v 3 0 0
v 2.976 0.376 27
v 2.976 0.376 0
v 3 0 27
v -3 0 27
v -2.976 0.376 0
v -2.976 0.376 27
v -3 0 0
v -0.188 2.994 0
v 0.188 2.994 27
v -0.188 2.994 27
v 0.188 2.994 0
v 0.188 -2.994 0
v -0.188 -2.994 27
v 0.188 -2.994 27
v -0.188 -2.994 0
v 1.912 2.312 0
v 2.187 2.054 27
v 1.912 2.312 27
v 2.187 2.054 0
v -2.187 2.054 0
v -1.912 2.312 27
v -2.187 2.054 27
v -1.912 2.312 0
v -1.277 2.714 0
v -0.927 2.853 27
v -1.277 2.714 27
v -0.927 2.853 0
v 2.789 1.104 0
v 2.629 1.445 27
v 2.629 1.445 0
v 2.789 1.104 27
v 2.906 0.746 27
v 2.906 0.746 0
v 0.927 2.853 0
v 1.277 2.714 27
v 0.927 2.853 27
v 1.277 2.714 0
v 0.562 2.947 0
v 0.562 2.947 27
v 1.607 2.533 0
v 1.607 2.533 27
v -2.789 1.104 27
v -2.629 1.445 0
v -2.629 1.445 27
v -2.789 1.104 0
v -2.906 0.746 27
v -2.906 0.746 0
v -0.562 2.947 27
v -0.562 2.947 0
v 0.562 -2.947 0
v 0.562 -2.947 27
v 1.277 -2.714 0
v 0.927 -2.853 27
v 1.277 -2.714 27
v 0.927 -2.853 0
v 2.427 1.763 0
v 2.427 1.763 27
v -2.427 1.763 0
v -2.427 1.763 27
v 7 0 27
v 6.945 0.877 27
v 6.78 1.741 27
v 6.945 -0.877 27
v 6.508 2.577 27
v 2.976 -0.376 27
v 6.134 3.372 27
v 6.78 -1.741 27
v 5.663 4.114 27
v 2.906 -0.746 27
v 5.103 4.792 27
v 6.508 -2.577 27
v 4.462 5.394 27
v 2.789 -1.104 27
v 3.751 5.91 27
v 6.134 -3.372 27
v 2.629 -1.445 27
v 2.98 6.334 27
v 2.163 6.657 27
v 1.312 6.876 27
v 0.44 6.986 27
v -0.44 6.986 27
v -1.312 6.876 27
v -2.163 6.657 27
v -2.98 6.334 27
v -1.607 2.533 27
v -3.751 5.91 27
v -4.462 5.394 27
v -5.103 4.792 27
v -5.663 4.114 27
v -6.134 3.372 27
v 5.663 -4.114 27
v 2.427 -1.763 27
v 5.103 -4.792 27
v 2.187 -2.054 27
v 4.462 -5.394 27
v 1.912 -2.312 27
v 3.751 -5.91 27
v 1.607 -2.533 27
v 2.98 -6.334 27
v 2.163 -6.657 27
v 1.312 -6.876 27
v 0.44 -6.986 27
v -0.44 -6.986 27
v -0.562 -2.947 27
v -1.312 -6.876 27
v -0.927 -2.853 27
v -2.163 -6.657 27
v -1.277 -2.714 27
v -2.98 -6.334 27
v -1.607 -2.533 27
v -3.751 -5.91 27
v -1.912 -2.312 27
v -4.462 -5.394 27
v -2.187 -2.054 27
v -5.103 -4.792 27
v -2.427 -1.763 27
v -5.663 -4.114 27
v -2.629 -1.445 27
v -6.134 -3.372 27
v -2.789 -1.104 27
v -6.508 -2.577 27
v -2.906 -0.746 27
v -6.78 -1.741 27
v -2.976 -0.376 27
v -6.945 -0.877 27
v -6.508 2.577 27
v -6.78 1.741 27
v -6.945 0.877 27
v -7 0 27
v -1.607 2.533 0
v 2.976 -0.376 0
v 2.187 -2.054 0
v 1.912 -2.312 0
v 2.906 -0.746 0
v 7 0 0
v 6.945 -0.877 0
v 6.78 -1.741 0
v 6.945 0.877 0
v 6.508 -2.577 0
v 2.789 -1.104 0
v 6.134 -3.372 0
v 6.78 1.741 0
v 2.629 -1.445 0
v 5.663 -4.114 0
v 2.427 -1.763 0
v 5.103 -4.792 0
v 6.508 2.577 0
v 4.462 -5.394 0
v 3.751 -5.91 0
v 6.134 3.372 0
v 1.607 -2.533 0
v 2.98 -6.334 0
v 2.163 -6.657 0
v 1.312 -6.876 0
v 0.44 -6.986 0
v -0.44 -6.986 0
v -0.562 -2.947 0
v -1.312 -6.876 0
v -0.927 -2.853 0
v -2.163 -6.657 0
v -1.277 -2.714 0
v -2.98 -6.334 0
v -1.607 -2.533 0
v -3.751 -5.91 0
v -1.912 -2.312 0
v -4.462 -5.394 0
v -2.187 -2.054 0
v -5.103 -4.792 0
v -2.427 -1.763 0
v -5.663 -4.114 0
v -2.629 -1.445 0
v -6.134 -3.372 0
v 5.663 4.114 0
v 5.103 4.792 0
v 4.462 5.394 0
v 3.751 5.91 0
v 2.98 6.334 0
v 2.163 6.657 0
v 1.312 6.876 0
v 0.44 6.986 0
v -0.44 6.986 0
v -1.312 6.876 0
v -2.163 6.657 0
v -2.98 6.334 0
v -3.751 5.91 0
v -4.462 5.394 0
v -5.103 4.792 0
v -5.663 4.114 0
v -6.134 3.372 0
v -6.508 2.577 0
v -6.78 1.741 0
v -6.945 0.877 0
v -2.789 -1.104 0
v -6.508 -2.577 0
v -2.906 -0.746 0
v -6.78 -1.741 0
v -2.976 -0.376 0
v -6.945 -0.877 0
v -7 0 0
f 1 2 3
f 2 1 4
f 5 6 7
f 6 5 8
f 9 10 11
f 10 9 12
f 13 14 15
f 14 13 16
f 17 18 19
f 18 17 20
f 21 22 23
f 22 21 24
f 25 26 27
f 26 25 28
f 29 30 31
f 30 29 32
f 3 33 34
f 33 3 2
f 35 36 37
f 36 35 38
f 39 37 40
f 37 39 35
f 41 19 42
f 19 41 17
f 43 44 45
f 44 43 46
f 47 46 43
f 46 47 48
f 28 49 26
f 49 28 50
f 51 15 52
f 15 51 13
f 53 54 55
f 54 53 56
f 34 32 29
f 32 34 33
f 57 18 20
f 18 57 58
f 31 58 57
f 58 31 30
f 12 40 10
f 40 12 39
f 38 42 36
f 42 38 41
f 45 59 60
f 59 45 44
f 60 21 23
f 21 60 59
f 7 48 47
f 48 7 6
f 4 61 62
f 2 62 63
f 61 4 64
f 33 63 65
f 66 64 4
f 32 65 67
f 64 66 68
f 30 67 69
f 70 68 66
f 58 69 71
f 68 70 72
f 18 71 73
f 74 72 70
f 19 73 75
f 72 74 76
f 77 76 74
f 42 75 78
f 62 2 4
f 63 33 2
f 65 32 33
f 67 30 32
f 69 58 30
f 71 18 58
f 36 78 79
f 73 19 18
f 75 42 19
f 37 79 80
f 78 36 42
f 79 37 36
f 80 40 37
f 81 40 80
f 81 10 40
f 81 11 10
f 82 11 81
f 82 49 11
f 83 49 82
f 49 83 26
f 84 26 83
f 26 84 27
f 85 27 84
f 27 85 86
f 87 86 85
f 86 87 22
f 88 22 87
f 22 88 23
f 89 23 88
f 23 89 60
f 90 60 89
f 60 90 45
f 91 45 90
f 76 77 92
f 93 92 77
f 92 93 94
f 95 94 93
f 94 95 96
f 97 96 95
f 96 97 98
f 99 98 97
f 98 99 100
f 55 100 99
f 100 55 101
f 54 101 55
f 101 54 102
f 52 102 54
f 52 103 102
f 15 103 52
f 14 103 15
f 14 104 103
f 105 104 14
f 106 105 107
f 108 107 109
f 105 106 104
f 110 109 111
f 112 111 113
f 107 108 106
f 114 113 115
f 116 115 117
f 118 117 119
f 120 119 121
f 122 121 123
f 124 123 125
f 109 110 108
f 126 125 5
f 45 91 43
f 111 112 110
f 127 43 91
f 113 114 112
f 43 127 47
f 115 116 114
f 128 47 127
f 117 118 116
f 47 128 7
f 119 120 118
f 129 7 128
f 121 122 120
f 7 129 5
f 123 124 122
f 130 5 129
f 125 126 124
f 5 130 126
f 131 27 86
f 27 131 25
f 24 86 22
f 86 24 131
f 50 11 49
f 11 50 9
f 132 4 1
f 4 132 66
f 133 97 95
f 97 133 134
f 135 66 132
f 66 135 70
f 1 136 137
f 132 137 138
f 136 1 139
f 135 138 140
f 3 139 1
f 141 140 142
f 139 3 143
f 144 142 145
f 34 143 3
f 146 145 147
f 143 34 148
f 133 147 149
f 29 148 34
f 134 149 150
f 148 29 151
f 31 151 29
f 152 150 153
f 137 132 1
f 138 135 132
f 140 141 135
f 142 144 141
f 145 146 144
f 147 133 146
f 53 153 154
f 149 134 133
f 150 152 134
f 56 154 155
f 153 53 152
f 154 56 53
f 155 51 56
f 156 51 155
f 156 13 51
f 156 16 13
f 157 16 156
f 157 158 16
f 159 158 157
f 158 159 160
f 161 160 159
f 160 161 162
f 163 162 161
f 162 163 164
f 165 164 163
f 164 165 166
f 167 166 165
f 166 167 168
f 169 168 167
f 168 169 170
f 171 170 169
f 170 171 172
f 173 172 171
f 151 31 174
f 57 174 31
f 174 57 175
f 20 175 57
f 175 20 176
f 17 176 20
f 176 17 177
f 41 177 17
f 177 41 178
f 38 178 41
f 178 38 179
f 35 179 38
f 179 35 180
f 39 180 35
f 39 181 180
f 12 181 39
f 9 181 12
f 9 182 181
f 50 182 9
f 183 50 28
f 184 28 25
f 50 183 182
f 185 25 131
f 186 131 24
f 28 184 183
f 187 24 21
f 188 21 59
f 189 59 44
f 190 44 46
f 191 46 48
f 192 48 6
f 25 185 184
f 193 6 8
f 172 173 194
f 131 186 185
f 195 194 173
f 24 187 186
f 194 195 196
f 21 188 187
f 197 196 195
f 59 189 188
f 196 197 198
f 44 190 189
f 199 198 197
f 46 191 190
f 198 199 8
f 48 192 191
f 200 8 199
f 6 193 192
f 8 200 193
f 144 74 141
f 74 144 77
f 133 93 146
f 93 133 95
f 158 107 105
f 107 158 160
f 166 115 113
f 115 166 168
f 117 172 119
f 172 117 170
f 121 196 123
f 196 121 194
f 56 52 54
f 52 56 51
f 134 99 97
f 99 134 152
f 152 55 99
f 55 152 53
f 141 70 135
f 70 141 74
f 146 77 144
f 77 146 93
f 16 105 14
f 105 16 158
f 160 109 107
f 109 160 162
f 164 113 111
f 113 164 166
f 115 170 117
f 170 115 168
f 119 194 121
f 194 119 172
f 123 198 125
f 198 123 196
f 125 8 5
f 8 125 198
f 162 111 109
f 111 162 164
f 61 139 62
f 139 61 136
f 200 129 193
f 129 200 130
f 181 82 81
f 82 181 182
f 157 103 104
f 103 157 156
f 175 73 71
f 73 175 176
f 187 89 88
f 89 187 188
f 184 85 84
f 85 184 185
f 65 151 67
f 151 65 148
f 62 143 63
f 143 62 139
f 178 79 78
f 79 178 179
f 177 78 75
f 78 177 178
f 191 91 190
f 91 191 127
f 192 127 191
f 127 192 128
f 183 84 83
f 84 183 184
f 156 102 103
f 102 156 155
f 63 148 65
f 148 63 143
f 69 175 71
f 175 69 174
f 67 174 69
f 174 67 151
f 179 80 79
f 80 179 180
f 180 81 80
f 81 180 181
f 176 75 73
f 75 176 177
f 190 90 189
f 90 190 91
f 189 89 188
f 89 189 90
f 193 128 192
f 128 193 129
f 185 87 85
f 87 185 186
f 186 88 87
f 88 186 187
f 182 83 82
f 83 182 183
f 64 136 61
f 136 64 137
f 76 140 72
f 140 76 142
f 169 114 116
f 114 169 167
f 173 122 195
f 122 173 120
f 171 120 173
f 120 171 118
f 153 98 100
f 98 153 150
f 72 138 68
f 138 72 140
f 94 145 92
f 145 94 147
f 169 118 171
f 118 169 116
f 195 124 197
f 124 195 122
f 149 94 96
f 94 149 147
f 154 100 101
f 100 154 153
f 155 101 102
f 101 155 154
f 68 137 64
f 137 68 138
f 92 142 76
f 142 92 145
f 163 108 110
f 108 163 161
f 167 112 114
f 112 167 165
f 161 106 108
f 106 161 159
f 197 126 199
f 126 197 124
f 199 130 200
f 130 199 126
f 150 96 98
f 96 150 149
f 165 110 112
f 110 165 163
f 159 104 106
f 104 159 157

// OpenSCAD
$fn = 50;


difference() {
	union() {
		cylinder(h = 27, r = 7.0000000000);
	}
	union() {
		cylinder(h = 27, r = 3.0000000000);
		cylinder(h = 27, r = 3.0000000000);
		cylinder(h = 27, r = 1.5000000000);
		cylinder(h = 27, r = 1.5000000000);
		cylinder(h = 27, r = 1.5000000000);
		cylinder(h = 27, r = 1.5000000000);
		cylinder(h = 27, r = 1.5000000000);
		cylinder(h = 27, r = 1.5000000000);
	}
}
